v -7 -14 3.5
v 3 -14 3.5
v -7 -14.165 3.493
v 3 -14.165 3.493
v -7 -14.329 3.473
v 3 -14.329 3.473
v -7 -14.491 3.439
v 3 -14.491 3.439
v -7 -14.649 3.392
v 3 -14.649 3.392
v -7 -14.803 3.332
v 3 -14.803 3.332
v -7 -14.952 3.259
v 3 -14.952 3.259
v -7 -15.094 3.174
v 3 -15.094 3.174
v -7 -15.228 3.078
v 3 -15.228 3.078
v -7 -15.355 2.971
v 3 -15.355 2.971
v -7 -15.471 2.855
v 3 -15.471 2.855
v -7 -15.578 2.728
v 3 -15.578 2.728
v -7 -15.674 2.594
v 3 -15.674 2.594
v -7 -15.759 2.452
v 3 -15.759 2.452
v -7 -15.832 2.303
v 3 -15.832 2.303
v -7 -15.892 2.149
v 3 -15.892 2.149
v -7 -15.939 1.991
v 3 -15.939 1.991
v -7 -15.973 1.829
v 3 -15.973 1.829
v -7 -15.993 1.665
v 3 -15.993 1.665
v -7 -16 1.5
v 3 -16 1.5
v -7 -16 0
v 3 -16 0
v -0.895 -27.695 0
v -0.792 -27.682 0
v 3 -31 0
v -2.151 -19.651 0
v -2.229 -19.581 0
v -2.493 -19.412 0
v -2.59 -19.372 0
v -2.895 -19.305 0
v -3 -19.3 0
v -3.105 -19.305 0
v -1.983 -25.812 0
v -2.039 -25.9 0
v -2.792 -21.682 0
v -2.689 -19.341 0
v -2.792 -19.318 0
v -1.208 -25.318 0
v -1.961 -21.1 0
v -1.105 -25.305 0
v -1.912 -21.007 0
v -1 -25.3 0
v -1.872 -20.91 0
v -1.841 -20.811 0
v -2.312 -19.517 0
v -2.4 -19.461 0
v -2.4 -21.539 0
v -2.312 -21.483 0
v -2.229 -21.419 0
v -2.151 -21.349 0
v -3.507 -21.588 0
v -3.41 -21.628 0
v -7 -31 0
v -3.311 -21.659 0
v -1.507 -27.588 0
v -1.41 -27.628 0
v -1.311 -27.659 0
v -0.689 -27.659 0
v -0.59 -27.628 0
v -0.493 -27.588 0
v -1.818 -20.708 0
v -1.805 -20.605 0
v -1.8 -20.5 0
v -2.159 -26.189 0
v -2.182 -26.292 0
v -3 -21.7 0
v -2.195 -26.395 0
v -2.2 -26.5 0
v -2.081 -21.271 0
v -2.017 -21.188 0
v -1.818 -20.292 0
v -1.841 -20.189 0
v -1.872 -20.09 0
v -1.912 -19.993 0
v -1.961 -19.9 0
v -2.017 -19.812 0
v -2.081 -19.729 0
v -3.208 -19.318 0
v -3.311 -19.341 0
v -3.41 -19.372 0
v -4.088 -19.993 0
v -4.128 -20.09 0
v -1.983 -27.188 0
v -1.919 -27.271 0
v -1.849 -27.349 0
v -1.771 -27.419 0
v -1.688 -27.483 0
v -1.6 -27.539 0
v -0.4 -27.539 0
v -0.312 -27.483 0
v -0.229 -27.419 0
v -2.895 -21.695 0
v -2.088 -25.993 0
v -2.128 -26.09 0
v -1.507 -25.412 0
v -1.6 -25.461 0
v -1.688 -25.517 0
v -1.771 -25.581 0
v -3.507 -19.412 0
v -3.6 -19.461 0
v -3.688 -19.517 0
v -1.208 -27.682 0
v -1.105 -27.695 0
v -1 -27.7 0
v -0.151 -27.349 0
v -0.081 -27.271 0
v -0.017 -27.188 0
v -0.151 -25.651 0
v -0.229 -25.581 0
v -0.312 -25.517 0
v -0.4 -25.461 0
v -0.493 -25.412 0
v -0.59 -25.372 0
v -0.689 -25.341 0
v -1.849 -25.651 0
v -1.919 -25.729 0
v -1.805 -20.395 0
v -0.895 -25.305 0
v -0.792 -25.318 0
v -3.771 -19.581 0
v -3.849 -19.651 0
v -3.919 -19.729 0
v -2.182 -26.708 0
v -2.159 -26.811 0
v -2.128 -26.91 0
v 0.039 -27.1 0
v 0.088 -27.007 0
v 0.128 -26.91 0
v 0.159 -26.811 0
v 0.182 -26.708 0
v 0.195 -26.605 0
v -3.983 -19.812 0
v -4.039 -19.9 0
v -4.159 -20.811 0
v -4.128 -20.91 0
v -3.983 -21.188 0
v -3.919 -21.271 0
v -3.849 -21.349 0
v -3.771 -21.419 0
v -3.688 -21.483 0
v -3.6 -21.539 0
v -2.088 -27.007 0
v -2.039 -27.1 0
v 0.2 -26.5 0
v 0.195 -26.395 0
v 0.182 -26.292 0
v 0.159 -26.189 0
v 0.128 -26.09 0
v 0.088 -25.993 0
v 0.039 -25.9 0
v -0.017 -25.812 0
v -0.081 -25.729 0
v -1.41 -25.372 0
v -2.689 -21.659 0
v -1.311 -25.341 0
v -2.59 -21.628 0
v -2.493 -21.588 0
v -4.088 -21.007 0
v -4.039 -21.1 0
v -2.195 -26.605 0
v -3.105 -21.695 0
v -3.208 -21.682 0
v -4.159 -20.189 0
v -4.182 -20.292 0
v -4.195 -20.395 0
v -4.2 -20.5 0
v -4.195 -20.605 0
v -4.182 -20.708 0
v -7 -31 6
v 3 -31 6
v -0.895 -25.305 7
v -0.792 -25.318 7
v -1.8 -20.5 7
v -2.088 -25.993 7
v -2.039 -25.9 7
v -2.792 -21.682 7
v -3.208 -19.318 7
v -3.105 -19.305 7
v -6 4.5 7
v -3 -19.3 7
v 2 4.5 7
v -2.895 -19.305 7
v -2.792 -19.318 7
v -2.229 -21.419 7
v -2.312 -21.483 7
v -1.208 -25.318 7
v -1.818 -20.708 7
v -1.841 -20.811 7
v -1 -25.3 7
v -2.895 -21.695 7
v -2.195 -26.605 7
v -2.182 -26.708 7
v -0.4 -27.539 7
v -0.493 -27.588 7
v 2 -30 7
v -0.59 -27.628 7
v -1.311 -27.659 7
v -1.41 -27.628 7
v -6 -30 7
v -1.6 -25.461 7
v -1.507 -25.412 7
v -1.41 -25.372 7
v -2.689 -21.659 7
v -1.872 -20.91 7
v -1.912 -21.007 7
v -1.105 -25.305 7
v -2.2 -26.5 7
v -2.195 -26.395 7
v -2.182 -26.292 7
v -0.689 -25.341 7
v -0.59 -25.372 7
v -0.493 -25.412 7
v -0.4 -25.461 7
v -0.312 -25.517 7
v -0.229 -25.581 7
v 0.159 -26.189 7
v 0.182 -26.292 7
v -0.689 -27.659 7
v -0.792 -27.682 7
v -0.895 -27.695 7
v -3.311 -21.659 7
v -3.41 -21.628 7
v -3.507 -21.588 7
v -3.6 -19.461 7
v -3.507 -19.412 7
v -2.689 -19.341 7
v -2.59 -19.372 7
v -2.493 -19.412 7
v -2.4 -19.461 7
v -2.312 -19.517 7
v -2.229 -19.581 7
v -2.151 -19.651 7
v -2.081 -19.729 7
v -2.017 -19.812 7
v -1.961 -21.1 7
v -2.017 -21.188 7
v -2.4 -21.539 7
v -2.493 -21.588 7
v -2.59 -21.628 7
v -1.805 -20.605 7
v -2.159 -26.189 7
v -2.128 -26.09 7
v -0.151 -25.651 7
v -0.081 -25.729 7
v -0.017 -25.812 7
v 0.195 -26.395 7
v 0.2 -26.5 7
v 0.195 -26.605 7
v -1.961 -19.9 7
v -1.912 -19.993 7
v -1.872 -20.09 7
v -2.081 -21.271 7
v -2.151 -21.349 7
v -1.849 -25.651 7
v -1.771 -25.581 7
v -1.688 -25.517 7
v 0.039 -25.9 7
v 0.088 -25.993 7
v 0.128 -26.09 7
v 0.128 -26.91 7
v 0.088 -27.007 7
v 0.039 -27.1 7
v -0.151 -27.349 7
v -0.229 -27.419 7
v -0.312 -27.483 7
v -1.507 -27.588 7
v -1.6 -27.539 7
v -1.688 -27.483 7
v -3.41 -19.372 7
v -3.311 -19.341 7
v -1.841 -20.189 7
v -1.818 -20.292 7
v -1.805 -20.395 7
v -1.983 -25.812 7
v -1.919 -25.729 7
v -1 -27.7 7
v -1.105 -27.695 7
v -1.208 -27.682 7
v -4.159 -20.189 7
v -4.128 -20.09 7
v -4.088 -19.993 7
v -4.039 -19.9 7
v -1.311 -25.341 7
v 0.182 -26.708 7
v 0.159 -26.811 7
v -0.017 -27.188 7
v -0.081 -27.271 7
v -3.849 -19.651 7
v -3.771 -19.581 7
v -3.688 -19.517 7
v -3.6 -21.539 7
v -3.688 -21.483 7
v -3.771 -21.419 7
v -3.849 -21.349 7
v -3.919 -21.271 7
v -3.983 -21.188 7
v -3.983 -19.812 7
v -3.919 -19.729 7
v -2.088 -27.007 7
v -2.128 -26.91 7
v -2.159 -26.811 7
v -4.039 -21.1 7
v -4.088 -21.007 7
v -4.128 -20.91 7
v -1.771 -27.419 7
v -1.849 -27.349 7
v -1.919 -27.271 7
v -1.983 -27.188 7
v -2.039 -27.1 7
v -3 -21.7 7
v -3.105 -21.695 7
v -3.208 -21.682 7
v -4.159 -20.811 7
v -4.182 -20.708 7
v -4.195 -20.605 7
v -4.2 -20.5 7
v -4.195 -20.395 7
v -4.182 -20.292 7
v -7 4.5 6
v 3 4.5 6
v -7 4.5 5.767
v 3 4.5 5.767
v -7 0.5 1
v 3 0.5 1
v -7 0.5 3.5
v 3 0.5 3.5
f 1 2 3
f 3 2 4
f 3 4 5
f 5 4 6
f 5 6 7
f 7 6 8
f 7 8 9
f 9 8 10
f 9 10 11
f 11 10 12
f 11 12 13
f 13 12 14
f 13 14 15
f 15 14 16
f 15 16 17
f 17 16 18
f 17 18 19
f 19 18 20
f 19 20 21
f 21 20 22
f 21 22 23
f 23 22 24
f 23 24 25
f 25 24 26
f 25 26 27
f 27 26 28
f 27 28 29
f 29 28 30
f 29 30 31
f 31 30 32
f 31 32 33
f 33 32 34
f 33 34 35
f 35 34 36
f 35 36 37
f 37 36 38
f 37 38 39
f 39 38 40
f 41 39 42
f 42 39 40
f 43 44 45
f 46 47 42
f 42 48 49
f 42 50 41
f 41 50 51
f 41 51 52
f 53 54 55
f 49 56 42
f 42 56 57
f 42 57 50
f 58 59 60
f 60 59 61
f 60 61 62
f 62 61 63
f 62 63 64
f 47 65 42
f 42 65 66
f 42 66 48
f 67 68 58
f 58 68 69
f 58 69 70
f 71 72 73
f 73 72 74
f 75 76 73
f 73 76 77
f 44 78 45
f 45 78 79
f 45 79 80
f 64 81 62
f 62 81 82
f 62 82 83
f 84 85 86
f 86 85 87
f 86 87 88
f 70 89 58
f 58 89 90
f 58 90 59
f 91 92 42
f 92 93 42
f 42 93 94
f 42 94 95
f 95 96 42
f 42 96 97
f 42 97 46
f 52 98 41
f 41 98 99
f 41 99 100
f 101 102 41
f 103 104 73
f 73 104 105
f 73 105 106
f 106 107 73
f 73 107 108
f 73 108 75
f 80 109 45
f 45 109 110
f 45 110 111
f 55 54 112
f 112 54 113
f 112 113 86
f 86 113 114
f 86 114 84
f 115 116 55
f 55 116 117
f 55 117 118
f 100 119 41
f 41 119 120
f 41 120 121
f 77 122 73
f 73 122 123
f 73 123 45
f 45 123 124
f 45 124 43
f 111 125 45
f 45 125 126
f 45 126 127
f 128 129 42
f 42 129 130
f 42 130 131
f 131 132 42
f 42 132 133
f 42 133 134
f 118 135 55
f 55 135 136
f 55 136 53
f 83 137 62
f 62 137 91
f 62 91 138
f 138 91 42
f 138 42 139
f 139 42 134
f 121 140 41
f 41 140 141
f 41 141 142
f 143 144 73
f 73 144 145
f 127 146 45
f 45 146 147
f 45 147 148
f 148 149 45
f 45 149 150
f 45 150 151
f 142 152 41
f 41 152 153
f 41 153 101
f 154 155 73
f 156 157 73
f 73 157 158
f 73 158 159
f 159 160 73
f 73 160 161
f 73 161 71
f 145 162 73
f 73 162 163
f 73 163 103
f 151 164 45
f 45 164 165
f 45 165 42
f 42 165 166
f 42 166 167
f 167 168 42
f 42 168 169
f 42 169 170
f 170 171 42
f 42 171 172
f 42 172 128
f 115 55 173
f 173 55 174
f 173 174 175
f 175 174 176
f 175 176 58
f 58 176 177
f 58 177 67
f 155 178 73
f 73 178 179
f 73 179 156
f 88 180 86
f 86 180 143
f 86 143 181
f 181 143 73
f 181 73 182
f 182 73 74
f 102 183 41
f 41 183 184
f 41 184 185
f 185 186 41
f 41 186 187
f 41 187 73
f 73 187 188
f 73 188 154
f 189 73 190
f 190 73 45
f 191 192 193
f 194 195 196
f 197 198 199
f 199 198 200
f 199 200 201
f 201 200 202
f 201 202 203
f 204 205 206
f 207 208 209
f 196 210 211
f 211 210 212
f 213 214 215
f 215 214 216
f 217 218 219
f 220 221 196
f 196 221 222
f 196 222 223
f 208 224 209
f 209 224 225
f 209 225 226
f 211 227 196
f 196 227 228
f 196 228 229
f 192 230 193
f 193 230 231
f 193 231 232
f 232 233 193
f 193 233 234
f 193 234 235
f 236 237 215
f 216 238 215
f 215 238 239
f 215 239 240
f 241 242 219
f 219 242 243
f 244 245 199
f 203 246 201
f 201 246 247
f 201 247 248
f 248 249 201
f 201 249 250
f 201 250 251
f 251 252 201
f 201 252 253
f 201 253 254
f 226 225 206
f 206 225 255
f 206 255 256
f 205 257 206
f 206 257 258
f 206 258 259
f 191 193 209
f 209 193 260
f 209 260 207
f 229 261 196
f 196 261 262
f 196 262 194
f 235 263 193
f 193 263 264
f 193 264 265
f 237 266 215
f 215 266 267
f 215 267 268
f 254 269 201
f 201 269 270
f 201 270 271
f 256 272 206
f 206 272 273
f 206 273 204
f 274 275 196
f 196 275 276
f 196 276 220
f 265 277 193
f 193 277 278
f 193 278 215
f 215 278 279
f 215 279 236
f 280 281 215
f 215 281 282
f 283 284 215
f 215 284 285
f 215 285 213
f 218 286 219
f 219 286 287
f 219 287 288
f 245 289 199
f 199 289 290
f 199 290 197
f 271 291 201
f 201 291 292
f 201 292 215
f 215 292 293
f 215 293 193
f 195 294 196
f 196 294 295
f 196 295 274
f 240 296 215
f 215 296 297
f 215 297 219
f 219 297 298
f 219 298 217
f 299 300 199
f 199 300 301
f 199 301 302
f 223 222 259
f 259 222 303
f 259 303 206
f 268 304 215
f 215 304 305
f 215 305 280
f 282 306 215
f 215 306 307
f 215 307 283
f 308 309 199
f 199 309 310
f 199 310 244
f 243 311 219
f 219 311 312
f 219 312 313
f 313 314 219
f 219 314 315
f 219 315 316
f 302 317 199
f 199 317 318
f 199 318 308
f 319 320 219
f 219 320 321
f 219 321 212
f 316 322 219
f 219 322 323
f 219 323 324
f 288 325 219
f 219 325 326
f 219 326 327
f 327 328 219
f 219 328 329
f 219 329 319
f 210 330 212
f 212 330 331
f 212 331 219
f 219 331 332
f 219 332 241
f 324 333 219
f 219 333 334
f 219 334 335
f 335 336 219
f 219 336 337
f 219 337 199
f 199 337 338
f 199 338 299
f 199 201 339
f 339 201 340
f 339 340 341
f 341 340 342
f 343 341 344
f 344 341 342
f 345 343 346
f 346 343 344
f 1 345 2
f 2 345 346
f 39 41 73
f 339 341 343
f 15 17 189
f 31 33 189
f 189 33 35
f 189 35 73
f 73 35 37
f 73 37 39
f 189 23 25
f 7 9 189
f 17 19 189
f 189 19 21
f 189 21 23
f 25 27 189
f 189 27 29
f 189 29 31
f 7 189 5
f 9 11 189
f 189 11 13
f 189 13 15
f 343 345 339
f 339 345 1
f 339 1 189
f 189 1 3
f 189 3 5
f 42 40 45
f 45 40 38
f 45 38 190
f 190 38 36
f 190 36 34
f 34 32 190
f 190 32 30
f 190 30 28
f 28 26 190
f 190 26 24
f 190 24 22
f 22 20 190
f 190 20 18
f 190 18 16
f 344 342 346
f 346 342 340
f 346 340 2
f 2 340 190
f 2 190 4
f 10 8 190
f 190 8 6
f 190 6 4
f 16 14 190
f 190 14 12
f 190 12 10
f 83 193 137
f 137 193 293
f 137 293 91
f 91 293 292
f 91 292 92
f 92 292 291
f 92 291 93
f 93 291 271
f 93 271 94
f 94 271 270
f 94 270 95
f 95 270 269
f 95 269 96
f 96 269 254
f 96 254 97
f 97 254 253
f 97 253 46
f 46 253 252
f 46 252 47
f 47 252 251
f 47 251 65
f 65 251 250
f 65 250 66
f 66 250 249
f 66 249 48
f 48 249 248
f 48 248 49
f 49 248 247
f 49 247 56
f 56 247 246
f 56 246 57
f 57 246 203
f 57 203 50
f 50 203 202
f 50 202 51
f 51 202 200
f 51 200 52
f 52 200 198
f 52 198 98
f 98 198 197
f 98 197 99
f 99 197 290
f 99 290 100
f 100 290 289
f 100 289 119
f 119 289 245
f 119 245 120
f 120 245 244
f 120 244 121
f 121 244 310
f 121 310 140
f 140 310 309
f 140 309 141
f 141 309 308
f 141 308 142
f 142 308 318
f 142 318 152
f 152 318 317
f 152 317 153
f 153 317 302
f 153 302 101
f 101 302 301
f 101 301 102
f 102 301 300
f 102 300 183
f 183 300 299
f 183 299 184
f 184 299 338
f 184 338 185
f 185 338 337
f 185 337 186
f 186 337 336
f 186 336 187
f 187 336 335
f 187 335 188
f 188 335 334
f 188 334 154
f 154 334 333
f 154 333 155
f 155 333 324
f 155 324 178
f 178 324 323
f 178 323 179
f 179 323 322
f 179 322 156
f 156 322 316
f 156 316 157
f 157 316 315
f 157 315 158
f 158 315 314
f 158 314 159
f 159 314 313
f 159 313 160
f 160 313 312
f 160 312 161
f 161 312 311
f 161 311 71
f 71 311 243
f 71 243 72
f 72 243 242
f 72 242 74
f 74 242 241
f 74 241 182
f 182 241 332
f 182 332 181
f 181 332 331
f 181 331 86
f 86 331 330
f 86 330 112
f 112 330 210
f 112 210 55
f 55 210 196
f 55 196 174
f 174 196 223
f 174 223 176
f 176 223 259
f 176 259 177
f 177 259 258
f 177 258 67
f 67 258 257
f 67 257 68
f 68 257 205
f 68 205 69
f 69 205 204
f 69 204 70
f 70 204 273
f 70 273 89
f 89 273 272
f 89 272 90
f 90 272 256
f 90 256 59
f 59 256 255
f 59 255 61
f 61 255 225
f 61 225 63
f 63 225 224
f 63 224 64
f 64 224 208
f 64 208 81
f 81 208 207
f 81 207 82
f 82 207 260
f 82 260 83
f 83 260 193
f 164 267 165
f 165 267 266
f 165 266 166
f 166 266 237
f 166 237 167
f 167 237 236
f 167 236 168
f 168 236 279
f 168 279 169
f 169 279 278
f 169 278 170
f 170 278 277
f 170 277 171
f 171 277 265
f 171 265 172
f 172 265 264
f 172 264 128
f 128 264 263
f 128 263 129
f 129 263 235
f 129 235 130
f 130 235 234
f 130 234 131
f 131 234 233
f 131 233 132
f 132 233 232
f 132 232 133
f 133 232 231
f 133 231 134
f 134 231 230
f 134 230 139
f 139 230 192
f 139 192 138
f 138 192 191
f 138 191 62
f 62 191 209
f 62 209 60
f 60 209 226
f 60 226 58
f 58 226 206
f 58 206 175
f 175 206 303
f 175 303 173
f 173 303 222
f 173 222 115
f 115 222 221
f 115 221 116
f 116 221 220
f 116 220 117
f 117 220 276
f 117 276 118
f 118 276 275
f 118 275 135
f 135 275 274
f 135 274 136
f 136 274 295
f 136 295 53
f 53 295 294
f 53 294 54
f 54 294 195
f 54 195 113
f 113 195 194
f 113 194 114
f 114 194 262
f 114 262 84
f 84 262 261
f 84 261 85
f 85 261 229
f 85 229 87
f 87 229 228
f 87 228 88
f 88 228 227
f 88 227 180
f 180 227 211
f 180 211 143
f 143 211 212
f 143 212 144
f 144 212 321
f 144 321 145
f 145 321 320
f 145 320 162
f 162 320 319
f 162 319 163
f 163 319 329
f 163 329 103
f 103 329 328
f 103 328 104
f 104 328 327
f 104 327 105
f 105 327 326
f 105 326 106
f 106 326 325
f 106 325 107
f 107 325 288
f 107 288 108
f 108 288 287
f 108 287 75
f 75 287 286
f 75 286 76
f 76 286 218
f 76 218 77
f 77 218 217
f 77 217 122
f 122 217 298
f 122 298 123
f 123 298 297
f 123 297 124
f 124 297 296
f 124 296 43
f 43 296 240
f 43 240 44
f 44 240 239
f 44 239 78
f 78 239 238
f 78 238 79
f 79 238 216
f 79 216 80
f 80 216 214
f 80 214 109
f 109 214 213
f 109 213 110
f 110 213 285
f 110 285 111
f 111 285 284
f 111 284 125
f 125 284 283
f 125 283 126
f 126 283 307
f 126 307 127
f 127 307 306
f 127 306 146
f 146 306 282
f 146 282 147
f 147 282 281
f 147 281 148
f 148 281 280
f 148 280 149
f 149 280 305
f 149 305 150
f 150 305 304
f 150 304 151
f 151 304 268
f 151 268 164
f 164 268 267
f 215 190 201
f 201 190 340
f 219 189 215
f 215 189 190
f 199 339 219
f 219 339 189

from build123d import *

# Parameters (mm, degrees)
EXTRUDE_1_DEPTH    = 10
HOLE_WIZARD_M2_1_D = 2.4
CHAMFER_1_SIZE     = 1


with BuildPart() as part:
    # 草图3 → 凸台-拉伸1 (new body)
    with BuildSketch(Plane(origin=(3, 0, 0), x_dir=(0, 0, -1), z_dir=(1, 0, 0))):
        with BuildLine():
            Line((-7, -31), (0, -31))
            Line((0, -31), (0, -16))
            Line((0, -16), (-1.5, -16))
            ThreePointArc((-1.5, -16), (-2.914213562, -15.414213562), (-3.5, -14))
            Line((-3.5, -14), (-3.5, 0.5))
            Line((-3.5, 0.5), (-1, 0.5))
            Line((-1, 0.5), (-5.76701437, 4.5))
            Line((-5.76701437, 4.5), (-7, 4.5))
            Line((-7, 4.5), (-7, -31))
        make_face()
    extrude(amount=-EXTRUDE_1_DEPTH)

    # M2 间隙孔1 (through all)
    with Locations(Plane.XY.offset(7)):
        with Locations((-1, -26.5), (-3, -20.5)):
            Hole(HOLE_WIZARD_M2_1_D / 2)

    # 倒角1
    chamfer_1_edges = [part.edges().sort_by_distance(p)[0] for p in [
        (3, -13.25, 7),
        (-2, -31, 7),
        (-7, -13.25, 7),
    ]]
    chamfer(chamfer_1_edges, length=CHAMFER_1_SIZE)


solid = part.part
